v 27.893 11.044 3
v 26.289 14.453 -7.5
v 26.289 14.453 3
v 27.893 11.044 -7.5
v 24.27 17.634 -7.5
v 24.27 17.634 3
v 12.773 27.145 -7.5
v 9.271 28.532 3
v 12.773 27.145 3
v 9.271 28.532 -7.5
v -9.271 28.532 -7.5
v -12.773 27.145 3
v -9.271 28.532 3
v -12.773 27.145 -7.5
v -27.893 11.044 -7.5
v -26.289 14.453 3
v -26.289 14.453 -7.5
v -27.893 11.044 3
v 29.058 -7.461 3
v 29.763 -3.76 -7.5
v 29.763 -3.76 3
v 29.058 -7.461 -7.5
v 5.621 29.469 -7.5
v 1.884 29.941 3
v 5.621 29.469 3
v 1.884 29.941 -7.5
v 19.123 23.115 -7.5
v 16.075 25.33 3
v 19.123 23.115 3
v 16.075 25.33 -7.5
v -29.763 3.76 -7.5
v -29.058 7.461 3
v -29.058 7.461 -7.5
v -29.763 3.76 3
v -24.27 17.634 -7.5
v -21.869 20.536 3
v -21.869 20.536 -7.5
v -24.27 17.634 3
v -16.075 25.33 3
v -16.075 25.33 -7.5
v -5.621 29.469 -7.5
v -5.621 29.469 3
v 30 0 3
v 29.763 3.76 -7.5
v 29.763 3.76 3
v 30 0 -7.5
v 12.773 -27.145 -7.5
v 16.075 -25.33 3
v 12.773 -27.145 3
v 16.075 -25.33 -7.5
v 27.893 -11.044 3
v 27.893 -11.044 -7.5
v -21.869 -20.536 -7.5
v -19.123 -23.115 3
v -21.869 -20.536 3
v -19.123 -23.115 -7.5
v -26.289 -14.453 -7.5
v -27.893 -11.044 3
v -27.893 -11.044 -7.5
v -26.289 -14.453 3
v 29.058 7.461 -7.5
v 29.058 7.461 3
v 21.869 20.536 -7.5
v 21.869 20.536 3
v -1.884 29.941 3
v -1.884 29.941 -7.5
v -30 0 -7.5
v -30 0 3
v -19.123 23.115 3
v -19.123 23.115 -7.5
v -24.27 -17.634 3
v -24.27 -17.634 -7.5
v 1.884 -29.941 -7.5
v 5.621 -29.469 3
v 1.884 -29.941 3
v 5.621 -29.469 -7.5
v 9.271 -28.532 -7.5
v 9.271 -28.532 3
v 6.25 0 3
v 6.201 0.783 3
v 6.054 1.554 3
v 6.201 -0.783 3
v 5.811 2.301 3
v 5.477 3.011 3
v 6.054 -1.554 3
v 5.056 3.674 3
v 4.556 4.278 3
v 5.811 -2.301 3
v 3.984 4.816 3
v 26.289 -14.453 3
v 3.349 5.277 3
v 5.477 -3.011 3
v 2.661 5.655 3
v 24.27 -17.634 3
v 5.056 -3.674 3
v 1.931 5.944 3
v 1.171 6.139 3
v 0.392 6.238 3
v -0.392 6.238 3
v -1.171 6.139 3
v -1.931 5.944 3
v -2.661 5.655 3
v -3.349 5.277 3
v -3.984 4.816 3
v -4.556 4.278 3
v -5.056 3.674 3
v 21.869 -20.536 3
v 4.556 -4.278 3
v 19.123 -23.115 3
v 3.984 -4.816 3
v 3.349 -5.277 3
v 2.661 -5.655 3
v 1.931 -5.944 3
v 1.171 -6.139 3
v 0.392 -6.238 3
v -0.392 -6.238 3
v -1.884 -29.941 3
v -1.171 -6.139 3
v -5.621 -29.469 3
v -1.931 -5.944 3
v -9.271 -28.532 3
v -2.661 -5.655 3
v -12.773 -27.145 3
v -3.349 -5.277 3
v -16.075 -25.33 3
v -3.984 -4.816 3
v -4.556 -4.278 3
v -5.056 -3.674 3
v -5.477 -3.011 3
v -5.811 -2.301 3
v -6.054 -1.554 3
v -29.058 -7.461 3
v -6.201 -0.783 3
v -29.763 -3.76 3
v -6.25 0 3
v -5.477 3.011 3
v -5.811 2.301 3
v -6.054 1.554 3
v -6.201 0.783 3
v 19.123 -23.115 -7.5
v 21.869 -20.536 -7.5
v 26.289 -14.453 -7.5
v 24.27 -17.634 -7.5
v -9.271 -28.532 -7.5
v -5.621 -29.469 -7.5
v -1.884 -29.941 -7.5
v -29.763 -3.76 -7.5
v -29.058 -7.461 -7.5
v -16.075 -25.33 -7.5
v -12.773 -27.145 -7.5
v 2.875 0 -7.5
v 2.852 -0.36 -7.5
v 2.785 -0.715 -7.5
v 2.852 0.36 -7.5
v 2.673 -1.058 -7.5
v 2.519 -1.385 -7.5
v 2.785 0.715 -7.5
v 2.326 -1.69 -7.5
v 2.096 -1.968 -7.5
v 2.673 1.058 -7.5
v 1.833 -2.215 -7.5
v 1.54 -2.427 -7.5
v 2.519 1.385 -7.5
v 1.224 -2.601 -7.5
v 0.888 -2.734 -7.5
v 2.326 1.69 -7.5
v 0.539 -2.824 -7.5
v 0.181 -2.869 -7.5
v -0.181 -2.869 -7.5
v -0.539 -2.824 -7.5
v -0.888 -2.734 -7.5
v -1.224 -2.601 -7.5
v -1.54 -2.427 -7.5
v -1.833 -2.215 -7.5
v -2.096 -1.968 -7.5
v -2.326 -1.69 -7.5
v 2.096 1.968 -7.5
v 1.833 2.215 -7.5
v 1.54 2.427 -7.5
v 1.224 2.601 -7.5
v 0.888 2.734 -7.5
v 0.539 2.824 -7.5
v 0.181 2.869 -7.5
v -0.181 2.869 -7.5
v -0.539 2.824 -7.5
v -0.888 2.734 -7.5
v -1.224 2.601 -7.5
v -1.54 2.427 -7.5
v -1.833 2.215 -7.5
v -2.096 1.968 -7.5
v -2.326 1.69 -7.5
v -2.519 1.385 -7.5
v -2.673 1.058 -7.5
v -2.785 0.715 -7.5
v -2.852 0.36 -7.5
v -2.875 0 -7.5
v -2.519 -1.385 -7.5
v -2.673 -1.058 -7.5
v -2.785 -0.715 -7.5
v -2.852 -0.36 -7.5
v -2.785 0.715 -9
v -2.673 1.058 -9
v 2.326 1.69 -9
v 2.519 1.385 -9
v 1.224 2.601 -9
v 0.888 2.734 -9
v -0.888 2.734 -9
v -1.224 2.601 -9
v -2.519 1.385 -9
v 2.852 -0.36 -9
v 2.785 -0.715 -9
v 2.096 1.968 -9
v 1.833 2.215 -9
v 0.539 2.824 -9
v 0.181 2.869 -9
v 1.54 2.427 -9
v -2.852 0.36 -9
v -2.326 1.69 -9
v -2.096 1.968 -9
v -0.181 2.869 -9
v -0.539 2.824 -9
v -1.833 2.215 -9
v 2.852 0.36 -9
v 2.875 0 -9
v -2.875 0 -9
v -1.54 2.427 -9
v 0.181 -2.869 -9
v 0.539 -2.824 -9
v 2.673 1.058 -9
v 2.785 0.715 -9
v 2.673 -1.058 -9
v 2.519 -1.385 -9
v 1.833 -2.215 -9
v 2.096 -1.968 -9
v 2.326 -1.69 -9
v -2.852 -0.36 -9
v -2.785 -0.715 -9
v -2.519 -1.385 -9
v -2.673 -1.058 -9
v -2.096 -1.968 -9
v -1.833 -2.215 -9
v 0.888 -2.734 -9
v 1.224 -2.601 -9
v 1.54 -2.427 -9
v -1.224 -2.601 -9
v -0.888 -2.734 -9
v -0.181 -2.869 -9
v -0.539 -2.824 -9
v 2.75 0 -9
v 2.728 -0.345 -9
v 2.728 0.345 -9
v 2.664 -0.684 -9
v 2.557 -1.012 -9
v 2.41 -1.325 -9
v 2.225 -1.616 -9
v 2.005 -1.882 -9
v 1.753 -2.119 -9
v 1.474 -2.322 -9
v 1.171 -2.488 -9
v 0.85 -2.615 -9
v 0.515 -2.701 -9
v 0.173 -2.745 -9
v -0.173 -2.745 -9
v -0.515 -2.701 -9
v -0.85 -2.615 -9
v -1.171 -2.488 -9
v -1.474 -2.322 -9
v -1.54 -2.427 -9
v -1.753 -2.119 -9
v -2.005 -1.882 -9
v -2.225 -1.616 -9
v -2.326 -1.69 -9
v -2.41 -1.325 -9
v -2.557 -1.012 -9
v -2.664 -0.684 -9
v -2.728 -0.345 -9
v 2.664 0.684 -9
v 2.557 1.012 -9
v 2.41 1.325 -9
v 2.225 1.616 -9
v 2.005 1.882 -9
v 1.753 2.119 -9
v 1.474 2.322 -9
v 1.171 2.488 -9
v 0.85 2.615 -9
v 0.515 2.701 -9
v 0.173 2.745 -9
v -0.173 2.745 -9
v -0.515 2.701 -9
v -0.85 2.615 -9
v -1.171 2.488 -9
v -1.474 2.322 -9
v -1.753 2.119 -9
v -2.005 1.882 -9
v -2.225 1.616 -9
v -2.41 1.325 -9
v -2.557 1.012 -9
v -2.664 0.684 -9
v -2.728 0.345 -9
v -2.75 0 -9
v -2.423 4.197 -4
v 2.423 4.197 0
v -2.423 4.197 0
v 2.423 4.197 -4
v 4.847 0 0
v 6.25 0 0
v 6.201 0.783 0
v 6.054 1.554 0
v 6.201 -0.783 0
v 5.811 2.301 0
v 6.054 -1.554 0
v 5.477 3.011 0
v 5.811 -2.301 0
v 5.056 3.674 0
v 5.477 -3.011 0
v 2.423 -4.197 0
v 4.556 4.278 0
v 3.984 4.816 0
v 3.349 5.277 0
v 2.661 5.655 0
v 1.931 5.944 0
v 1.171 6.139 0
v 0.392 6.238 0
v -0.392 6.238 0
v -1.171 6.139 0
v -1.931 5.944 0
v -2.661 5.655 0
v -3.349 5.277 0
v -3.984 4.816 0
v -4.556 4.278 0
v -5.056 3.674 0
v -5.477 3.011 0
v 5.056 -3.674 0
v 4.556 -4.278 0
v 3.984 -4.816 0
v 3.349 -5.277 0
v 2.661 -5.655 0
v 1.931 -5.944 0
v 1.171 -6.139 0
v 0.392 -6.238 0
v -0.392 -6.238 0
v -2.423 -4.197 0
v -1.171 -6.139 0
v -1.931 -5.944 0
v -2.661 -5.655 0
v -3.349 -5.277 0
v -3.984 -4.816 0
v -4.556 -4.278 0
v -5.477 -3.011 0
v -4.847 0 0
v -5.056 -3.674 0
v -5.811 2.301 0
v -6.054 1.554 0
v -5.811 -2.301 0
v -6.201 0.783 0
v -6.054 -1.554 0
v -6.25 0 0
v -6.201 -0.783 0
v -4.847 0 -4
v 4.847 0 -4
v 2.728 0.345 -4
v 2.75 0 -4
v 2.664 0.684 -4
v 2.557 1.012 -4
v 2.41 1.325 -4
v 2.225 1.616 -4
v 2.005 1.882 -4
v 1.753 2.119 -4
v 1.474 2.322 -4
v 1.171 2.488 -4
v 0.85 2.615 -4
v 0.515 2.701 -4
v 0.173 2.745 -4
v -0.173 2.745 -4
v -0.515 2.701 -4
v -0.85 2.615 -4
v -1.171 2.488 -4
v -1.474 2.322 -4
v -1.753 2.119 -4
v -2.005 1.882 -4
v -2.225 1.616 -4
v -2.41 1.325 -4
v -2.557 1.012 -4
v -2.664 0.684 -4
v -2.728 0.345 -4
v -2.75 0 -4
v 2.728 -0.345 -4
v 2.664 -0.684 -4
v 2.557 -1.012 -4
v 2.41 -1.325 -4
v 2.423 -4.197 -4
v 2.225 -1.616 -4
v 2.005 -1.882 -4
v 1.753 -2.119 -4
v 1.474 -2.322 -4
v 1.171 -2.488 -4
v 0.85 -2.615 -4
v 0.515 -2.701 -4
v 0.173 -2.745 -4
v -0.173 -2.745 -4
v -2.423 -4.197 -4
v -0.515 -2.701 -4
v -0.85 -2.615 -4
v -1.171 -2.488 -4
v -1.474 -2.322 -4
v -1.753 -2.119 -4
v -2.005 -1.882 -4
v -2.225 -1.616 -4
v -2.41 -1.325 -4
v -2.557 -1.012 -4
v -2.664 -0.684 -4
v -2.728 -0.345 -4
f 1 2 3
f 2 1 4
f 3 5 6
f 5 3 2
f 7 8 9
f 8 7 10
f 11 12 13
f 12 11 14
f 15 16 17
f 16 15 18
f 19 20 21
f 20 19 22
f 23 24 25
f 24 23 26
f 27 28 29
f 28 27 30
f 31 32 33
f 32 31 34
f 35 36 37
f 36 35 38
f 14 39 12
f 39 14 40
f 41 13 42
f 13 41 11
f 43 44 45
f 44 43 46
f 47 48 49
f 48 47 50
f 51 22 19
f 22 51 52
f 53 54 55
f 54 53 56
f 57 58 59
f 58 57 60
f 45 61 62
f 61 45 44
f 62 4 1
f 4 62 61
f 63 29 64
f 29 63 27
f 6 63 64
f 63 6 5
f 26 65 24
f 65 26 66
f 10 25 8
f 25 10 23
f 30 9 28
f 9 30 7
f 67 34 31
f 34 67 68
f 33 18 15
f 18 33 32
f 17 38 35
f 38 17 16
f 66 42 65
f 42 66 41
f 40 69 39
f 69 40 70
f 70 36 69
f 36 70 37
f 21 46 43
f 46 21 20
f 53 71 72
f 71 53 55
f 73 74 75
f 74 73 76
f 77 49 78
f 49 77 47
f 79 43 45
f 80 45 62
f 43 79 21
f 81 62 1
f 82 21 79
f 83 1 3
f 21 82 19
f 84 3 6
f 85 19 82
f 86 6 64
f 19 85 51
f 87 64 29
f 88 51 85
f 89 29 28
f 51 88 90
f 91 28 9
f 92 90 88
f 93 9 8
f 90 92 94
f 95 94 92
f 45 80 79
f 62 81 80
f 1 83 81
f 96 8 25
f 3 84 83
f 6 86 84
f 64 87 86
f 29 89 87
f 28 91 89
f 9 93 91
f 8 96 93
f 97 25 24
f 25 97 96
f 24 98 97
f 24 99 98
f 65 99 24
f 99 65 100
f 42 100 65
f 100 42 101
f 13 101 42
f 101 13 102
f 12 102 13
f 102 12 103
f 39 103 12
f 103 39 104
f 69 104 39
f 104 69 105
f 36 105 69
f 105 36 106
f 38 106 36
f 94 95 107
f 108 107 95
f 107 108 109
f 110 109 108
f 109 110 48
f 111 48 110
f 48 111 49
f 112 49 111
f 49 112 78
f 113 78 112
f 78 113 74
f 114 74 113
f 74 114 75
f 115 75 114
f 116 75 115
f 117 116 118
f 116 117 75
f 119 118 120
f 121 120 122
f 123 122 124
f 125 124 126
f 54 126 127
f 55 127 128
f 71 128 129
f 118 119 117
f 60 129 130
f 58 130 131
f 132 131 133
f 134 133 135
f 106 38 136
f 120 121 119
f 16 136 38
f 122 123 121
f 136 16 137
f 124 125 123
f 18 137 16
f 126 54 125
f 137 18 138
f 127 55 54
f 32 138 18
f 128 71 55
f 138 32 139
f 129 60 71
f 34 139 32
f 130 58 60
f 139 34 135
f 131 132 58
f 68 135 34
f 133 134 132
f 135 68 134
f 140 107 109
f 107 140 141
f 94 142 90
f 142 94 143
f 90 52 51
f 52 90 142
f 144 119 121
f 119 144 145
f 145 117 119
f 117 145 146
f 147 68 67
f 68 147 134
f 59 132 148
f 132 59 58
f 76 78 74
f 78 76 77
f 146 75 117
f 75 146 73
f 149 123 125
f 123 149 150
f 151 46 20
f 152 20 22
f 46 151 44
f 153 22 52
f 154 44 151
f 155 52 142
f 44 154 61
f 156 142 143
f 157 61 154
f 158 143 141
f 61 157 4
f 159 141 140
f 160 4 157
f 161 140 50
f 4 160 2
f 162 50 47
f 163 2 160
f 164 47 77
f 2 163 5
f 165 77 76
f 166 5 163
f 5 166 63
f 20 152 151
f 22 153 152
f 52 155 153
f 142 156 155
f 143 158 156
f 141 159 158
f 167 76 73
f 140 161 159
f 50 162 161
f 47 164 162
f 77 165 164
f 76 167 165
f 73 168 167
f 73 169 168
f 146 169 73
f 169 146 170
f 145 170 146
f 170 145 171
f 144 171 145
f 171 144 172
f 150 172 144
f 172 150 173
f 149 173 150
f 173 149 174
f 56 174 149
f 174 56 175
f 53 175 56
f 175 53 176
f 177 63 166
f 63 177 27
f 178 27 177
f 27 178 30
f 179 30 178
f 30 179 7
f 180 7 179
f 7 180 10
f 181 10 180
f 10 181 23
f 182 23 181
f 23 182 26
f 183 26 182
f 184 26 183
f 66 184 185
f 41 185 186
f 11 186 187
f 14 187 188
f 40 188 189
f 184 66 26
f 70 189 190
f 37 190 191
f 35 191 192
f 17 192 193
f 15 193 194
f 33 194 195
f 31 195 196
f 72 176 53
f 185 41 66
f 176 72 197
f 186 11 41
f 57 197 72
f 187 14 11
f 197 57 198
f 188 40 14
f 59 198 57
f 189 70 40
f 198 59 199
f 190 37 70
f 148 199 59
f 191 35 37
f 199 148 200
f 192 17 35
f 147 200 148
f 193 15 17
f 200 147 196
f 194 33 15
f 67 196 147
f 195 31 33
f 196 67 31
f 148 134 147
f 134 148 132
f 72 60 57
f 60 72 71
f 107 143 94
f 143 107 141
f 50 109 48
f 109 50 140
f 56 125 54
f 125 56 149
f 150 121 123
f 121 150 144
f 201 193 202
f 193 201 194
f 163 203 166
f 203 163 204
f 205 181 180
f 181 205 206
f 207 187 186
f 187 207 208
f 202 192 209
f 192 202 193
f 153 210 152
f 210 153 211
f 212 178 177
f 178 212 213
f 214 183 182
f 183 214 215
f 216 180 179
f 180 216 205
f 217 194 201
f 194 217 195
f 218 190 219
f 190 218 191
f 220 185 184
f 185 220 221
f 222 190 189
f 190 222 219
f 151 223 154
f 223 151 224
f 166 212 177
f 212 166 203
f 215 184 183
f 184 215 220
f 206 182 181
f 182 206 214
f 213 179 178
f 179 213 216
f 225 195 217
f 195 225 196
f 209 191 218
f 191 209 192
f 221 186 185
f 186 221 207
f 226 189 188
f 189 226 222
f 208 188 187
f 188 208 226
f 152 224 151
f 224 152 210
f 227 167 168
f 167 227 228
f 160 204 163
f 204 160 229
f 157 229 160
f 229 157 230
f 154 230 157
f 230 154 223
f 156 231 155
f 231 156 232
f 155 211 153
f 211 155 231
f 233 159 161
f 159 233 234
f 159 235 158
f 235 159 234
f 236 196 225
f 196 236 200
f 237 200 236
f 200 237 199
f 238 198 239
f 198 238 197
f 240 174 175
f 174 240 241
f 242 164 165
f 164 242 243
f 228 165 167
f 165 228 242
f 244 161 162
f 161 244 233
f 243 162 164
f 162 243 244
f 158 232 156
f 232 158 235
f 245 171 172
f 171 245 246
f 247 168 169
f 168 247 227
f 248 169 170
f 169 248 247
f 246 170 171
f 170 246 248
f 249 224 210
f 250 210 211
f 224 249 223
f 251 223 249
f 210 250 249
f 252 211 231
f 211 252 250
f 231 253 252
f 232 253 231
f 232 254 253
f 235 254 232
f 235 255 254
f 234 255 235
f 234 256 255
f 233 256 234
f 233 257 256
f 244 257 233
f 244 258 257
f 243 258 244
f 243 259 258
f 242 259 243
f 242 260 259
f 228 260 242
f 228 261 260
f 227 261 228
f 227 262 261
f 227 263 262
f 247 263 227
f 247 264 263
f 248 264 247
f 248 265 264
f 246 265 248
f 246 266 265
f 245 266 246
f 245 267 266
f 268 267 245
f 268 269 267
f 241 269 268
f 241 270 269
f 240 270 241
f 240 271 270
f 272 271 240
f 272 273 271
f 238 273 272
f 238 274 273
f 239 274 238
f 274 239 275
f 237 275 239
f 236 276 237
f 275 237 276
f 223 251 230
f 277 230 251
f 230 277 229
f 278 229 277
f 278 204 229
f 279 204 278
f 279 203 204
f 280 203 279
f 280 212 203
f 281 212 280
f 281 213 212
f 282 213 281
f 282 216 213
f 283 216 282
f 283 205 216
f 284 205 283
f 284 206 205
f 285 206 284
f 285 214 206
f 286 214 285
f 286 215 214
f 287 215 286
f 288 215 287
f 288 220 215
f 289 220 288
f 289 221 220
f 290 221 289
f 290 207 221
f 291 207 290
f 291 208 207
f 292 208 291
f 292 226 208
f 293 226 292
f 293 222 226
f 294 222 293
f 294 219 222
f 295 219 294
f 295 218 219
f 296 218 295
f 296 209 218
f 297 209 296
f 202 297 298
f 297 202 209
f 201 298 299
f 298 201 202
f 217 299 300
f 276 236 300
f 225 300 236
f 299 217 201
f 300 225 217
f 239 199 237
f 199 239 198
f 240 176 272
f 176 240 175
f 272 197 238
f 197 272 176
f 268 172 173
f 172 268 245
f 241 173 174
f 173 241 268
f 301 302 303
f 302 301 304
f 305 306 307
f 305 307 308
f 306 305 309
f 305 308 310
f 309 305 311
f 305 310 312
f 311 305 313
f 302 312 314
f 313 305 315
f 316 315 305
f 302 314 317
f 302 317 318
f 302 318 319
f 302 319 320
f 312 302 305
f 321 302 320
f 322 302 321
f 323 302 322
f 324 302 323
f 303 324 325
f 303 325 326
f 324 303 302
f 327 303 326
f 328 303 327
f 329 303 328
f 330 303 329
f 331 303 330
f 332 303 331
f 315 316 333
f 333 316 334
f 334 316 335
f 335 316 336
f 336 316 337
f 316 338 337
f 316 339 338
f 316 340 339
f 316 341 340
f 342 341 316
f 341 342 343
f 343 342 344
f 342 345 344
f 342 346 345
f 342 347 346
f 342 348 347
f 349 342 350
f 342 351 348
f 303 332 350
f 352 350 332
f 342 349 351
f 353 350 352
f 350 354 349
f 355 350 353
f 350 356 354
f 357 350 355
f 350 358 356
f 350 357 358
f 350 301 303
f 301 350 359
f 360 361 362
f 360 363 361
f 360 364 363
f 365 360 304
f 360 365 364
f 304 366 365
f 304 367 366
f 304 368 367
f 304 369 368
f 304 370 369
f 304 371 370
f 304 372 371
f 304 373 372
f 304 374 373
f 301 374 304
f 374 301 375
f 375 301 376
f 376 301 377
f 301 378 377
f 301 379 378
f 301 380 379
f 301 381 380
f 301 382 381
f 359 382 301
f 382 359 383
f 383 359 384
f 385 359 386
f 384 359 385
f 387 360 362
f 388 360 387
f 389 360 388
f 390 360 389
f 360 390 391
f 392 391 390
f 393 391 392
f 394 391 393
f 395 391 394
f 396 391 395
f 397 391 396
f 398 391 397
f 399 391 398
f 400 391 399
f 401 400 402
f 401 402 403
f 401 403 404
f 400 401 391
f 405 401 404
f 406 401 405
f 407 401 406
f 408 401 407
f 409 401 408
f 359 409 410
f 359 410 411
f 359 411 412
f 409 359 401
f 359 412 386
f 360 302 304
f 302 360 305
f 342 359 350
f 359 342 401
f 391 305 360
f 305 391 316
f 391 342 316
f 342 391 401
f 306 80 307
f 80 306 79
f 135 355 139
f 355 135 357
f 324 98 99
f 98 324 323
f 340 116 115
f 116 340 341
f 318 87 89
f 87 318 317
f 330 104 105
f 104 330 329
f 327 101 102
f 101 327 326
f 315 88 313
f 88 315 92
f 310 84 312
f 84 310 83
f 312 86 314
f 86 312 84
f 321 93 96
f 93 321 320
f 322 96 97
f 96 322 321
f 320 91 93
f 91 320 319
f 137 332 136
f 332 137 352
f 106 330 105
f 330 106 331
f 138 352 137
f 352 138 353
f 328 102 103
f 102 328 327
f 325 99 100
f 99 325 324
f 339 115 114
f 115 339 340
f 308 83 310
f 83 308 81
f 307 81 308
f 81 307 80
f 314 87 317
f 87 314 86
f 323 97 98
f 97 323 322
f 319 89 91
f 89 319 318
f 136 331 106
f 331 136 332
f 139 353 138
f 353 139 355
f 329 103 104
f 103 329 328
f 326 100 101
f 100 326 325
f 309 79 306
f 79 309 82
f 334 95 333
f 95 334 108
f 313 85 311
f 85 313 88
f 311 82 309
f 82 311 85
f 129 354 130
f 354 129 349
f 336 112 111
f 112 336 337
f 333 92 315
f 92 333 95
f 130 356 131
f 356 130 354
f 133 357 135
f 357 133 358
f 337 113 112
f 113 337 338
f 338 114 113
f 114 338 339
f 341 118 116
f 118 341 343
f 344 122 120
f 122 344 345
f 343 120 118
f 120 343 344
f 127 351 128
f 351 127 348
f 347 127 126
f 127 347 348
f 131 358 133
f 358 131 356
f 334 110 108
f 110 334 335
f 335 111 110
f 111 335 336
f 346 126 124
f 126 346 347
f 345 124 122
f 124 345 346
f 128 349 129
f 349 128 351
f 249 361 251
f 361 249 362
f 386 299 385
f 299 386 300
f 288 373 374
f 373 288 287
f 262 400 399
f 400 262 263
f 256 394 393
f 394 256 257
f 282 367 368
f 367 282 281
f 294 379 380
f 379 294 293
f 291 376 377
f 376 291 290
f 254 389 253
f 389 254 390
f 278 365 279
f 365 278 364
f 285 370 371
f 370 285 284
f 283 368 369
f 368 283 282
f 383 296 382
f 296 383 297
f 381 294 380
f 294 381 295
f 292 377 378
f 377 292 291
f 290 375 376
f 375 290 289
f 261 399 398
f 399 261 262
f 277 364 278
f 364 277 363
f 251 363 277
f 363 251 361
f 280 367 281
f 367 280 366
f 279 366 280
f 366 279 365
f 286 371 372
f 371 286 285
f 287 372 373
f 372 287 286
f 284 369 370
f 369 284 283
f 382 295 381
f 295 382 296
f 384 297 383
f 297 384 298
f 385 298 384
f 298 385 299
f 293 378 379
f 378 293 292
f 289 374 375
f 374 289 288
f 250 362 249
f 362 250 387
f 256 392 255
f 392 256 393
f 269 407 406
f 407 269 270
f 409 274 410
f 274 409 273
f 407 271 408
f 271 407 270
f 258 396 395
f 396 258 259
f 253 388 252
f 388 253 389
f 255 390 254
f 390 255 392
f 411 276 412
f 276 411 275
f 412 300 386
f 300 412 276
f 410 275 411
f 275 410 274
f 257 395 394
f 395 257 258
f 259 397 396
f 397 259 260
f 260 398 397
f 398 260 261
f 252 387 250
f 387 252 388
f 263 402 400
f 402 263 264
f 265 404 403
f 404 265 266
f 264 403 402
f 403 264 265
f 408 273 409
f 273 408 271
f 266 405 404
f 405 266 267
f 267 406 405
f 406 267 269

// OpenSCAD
$fn = 50;


difference() {
	union() {
		translate(v = [0, 0, -7.5000000000]) {
			cylinder(h = 10.5000000000, r = 30.0000000000);
		}
		#translate(v = [0, 0, -9.0000000000]) {
			cylinder(h = 9, r = 2.8750000000);
		}
	}
	union() {
		translate(v = [0, 0, 0]) {
			rotate(a = [0, 0, 0]) {
				difference() {
					union() {
						translate(v = [0, 0, -4]) {
							linear_extrude(height = 4) {
								polygon(points = [[4.8468000000, 0.0000000000], [2.4234000000, 4.1974519271], [-2.4234000000, 4.1974519271], [-4.8468000000, 0.0000000000], [-2.4234000000, -4.1974519271], [2.4234000000, -4.1974519271]]);
							}
						}
					}
					union();
				}
			}
		}
		#cylinder(h = 3, r = 6.2500000000);
		#translate(v = [0, 0, -100.0000000000]) {
			cylinder(h = 200, r = 2.7500000000);
		}
	}
}
